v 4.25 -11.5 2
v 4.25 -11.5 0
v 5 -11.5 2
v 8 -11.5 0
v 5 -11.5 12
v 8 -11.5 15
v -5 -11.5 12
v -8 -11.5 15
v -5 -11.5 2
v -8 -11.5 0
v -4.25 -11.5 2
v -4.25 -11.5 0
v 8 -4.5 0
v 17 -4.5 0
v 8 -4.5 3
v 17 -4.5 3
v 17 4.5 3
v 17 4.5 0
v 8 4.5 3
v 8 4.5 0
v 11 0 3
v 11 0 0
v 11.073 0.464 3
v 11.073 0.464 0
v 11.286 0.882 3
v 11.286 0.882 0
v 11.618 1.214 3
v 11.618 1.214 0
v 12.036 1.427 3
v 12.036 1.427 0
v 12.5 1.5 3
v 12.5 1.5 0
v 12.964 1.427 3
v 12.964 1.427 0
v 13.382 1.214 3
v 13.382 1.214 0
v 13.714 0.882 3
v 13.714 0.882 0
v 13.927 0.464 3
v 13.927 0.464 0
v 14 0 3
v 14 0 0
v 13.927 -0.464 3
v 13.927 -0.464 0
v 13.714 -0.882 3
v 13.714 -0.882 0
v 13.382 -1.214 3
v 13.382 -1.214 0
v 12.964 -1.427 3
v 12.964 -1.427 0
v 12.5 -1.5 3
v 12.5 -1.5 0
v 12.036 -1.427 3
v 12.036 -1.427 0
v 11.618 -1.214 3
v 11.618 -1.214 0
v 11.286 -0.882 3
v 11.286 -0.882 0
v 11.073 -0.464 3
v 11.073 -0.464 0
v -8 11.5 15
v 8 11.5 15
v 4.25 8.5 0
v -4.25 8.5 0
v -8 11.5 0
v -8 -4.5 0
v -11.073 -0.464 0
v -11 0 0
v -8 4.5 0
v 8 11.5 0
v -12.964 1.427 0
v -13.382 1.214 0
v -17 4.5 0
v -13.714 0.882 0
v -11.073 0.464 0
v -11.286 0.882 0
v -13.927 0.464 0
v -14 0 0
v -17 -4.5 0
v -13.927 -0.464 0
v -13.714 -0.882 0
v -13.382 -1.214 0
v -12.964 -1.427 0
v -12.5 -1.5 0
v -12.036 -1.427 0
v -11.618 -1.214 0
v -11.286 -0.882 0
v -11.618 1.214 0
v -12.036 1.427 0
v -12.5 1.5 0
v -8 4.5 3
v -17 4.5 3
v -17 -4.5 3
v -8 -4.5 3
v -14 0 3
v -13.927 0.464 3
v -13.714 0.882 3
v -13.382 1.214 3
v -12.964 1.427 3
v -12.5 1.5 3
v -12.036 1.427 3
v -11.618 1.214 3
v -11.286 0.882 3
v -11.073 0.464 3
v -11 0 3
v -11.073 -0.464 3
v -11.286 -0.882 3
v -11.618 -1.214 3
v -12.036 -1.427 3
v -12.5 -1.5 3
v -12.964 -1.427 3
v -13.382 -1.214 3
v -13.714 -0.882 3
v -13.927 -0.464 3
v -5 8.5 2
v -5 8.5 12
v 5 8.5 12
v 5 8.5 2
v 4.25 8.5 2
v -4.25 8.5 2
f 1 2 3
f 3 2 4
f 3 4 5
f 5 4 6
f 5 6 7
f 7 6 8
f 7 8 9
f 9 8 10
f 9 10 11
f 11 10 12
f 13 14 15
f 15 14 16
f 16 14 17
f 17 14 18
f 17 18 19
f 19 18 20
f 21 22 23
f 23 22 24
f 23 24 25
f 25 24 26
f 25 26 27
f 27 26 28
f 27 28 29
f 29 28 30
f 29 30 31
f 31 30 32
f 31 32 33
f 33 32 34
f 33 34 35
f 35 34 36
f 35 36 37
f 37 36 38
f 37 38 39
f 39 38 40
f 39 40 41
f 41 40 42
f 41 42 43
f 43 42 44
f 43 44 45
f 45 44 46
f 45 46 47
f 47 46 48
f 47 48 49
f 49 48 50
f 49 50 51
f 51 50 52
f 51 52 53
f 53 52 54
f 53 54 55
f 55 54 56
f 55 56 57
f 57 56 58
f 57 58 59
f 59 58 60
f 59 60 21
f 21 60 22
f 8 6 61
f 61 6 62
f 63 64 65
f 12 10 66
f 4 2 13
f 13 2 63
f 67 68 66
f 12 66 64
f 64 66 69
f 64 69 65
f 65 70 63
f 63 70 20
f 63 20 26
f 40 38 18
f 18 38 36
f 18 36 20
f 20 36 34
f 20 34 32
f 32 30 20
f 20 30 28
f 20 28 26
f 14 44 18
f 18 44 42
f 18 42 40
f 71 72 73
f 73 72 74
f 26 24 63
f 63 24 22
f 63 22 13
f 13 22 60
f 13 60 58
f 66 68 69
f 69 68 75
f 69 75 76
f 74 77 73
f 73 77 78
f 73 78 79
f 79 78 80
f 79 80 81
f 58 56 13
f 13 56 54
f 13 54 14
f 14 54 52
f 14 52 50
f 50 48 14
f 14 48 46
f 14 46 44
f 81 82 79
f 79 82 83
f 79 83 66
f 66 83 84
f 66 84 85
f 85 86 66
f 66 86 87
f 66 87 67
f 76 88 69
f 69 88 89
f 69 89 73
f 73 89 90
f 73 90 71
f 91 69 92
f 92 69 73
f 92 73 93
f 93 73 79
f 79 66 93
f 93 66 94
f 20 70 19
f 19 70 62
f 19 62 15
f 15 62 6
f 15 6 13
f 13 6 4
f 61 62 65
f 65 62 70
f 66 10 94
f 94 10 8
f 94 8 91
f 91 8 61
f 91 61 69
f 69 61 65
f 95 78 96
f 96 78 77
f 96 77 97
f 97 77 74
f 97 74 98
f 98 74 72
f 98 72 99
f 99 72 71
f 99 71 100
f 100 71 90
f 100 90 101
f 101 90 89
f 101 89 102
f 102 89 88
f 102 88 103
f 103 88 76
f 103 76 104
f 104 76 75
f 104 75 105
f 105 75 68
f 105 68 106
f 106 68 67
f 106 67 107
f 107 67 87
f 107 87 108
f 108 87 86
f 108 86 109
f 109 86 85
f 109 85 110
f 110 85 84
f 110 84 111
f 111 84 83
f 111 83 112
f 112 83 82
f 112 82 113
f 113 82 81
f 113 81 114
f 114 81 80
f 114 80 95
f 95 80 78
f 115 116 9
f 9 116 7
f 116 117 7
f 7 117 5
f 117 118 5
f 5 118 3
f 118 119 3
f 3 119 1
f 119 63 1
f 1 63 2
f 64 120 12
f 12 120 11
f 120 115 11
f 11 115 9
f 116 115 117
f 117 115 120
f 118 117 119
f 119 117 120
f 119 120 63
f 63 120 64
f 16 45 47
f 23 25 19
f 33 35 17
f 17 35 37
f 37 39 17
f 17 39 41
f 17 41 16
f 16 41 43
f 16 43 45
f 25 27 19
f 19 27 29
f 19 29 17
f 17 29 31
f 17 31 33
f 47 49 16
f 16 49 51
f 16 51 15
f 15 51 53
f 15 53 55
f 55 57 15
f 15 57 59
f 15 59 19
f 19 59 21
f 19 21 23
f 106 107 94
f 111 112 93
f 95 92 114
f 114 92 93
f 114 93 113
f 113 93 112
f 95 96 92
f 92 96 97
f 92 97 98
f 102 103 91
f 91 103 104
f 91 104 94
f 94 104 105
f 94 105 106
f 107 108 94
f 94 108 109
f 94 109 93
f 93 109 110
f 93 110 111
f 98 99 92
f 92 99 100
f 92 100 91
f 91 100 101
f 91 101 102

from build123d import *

# Parameters (mm, degrees)
SKETCH1_W           = 9
SKETCH1_H           = 9
SKETCH1_R           = 1.5
SKETCH1_W_2         = 16
SKETCH1_H_2         = 23
BOSS_EXTRUDE1_DEPTH = 15
SKETCH2_W           = 10
SKETCH2_H           = 10
SKETCH2_W_2         = 8.5
SKETCH2_H_2         = 2
SKETCH2_W_3         = 9
SKETCH2_H_3         = 12
CUT_EXTRUDE1_DEPTH  = 20


with BuildPart() as part:
    # Sketch1 → Boss-Extrude1 (new body)
    # profile 1 of 3: a face of its own
    with BuildSketch(Plane.XY):
        with Locations((-12.5, 0)):
            Rectangle(SKETCH1_W, SKETCH1_H)
        with Locations((-12.5, 0)):
            Circle(SKETCH1_R, mode=Mode.SUBTRACT)
    # profile 2 of 3: a face of its own
    with BuildSketch(Plane.XY):
        Rectangle(SKETCH1_W_2, SKETCH1_H_2)
    # profile 3 of 3: a face of its own
    with BuildSketch(Plane.XY):
        with Locations((12.5, 0)):
            Rectangle(SKETCH1_W, SKETCH1_H)
        with Locations((12.5, 0)):
            Circle(SKETCH1_R, mode=Mode.SUBTRACT)
    extrude(amount=BOSS_EXTRUDE1_DEPTH)

    # Sketch2 → Cut-Extrude1 (cut)
    with BuildSketch(Plane.XZ.offset(11.5)):
        with Locations((0, 7)):
            Rectangle(SKETCH2_W, SKETCH2_H)
        with Locations((0, 1)):
            Rectangle(SKETCH2_W_2, SKETCH2_H_2)
        with Locations((12.5, 9)):
            Rectangle(SKETCH2_W_3, SKETCH2_H_3)
        with Locations((-12.5, 9)):
            Rectangle(SKETCH2_W_3, SKETCH2_H_3)
    extrude(amount=-CUT_EXTRUDE1_DEPTH, mode=Mode.SUBTRACT)


solid = part.part
